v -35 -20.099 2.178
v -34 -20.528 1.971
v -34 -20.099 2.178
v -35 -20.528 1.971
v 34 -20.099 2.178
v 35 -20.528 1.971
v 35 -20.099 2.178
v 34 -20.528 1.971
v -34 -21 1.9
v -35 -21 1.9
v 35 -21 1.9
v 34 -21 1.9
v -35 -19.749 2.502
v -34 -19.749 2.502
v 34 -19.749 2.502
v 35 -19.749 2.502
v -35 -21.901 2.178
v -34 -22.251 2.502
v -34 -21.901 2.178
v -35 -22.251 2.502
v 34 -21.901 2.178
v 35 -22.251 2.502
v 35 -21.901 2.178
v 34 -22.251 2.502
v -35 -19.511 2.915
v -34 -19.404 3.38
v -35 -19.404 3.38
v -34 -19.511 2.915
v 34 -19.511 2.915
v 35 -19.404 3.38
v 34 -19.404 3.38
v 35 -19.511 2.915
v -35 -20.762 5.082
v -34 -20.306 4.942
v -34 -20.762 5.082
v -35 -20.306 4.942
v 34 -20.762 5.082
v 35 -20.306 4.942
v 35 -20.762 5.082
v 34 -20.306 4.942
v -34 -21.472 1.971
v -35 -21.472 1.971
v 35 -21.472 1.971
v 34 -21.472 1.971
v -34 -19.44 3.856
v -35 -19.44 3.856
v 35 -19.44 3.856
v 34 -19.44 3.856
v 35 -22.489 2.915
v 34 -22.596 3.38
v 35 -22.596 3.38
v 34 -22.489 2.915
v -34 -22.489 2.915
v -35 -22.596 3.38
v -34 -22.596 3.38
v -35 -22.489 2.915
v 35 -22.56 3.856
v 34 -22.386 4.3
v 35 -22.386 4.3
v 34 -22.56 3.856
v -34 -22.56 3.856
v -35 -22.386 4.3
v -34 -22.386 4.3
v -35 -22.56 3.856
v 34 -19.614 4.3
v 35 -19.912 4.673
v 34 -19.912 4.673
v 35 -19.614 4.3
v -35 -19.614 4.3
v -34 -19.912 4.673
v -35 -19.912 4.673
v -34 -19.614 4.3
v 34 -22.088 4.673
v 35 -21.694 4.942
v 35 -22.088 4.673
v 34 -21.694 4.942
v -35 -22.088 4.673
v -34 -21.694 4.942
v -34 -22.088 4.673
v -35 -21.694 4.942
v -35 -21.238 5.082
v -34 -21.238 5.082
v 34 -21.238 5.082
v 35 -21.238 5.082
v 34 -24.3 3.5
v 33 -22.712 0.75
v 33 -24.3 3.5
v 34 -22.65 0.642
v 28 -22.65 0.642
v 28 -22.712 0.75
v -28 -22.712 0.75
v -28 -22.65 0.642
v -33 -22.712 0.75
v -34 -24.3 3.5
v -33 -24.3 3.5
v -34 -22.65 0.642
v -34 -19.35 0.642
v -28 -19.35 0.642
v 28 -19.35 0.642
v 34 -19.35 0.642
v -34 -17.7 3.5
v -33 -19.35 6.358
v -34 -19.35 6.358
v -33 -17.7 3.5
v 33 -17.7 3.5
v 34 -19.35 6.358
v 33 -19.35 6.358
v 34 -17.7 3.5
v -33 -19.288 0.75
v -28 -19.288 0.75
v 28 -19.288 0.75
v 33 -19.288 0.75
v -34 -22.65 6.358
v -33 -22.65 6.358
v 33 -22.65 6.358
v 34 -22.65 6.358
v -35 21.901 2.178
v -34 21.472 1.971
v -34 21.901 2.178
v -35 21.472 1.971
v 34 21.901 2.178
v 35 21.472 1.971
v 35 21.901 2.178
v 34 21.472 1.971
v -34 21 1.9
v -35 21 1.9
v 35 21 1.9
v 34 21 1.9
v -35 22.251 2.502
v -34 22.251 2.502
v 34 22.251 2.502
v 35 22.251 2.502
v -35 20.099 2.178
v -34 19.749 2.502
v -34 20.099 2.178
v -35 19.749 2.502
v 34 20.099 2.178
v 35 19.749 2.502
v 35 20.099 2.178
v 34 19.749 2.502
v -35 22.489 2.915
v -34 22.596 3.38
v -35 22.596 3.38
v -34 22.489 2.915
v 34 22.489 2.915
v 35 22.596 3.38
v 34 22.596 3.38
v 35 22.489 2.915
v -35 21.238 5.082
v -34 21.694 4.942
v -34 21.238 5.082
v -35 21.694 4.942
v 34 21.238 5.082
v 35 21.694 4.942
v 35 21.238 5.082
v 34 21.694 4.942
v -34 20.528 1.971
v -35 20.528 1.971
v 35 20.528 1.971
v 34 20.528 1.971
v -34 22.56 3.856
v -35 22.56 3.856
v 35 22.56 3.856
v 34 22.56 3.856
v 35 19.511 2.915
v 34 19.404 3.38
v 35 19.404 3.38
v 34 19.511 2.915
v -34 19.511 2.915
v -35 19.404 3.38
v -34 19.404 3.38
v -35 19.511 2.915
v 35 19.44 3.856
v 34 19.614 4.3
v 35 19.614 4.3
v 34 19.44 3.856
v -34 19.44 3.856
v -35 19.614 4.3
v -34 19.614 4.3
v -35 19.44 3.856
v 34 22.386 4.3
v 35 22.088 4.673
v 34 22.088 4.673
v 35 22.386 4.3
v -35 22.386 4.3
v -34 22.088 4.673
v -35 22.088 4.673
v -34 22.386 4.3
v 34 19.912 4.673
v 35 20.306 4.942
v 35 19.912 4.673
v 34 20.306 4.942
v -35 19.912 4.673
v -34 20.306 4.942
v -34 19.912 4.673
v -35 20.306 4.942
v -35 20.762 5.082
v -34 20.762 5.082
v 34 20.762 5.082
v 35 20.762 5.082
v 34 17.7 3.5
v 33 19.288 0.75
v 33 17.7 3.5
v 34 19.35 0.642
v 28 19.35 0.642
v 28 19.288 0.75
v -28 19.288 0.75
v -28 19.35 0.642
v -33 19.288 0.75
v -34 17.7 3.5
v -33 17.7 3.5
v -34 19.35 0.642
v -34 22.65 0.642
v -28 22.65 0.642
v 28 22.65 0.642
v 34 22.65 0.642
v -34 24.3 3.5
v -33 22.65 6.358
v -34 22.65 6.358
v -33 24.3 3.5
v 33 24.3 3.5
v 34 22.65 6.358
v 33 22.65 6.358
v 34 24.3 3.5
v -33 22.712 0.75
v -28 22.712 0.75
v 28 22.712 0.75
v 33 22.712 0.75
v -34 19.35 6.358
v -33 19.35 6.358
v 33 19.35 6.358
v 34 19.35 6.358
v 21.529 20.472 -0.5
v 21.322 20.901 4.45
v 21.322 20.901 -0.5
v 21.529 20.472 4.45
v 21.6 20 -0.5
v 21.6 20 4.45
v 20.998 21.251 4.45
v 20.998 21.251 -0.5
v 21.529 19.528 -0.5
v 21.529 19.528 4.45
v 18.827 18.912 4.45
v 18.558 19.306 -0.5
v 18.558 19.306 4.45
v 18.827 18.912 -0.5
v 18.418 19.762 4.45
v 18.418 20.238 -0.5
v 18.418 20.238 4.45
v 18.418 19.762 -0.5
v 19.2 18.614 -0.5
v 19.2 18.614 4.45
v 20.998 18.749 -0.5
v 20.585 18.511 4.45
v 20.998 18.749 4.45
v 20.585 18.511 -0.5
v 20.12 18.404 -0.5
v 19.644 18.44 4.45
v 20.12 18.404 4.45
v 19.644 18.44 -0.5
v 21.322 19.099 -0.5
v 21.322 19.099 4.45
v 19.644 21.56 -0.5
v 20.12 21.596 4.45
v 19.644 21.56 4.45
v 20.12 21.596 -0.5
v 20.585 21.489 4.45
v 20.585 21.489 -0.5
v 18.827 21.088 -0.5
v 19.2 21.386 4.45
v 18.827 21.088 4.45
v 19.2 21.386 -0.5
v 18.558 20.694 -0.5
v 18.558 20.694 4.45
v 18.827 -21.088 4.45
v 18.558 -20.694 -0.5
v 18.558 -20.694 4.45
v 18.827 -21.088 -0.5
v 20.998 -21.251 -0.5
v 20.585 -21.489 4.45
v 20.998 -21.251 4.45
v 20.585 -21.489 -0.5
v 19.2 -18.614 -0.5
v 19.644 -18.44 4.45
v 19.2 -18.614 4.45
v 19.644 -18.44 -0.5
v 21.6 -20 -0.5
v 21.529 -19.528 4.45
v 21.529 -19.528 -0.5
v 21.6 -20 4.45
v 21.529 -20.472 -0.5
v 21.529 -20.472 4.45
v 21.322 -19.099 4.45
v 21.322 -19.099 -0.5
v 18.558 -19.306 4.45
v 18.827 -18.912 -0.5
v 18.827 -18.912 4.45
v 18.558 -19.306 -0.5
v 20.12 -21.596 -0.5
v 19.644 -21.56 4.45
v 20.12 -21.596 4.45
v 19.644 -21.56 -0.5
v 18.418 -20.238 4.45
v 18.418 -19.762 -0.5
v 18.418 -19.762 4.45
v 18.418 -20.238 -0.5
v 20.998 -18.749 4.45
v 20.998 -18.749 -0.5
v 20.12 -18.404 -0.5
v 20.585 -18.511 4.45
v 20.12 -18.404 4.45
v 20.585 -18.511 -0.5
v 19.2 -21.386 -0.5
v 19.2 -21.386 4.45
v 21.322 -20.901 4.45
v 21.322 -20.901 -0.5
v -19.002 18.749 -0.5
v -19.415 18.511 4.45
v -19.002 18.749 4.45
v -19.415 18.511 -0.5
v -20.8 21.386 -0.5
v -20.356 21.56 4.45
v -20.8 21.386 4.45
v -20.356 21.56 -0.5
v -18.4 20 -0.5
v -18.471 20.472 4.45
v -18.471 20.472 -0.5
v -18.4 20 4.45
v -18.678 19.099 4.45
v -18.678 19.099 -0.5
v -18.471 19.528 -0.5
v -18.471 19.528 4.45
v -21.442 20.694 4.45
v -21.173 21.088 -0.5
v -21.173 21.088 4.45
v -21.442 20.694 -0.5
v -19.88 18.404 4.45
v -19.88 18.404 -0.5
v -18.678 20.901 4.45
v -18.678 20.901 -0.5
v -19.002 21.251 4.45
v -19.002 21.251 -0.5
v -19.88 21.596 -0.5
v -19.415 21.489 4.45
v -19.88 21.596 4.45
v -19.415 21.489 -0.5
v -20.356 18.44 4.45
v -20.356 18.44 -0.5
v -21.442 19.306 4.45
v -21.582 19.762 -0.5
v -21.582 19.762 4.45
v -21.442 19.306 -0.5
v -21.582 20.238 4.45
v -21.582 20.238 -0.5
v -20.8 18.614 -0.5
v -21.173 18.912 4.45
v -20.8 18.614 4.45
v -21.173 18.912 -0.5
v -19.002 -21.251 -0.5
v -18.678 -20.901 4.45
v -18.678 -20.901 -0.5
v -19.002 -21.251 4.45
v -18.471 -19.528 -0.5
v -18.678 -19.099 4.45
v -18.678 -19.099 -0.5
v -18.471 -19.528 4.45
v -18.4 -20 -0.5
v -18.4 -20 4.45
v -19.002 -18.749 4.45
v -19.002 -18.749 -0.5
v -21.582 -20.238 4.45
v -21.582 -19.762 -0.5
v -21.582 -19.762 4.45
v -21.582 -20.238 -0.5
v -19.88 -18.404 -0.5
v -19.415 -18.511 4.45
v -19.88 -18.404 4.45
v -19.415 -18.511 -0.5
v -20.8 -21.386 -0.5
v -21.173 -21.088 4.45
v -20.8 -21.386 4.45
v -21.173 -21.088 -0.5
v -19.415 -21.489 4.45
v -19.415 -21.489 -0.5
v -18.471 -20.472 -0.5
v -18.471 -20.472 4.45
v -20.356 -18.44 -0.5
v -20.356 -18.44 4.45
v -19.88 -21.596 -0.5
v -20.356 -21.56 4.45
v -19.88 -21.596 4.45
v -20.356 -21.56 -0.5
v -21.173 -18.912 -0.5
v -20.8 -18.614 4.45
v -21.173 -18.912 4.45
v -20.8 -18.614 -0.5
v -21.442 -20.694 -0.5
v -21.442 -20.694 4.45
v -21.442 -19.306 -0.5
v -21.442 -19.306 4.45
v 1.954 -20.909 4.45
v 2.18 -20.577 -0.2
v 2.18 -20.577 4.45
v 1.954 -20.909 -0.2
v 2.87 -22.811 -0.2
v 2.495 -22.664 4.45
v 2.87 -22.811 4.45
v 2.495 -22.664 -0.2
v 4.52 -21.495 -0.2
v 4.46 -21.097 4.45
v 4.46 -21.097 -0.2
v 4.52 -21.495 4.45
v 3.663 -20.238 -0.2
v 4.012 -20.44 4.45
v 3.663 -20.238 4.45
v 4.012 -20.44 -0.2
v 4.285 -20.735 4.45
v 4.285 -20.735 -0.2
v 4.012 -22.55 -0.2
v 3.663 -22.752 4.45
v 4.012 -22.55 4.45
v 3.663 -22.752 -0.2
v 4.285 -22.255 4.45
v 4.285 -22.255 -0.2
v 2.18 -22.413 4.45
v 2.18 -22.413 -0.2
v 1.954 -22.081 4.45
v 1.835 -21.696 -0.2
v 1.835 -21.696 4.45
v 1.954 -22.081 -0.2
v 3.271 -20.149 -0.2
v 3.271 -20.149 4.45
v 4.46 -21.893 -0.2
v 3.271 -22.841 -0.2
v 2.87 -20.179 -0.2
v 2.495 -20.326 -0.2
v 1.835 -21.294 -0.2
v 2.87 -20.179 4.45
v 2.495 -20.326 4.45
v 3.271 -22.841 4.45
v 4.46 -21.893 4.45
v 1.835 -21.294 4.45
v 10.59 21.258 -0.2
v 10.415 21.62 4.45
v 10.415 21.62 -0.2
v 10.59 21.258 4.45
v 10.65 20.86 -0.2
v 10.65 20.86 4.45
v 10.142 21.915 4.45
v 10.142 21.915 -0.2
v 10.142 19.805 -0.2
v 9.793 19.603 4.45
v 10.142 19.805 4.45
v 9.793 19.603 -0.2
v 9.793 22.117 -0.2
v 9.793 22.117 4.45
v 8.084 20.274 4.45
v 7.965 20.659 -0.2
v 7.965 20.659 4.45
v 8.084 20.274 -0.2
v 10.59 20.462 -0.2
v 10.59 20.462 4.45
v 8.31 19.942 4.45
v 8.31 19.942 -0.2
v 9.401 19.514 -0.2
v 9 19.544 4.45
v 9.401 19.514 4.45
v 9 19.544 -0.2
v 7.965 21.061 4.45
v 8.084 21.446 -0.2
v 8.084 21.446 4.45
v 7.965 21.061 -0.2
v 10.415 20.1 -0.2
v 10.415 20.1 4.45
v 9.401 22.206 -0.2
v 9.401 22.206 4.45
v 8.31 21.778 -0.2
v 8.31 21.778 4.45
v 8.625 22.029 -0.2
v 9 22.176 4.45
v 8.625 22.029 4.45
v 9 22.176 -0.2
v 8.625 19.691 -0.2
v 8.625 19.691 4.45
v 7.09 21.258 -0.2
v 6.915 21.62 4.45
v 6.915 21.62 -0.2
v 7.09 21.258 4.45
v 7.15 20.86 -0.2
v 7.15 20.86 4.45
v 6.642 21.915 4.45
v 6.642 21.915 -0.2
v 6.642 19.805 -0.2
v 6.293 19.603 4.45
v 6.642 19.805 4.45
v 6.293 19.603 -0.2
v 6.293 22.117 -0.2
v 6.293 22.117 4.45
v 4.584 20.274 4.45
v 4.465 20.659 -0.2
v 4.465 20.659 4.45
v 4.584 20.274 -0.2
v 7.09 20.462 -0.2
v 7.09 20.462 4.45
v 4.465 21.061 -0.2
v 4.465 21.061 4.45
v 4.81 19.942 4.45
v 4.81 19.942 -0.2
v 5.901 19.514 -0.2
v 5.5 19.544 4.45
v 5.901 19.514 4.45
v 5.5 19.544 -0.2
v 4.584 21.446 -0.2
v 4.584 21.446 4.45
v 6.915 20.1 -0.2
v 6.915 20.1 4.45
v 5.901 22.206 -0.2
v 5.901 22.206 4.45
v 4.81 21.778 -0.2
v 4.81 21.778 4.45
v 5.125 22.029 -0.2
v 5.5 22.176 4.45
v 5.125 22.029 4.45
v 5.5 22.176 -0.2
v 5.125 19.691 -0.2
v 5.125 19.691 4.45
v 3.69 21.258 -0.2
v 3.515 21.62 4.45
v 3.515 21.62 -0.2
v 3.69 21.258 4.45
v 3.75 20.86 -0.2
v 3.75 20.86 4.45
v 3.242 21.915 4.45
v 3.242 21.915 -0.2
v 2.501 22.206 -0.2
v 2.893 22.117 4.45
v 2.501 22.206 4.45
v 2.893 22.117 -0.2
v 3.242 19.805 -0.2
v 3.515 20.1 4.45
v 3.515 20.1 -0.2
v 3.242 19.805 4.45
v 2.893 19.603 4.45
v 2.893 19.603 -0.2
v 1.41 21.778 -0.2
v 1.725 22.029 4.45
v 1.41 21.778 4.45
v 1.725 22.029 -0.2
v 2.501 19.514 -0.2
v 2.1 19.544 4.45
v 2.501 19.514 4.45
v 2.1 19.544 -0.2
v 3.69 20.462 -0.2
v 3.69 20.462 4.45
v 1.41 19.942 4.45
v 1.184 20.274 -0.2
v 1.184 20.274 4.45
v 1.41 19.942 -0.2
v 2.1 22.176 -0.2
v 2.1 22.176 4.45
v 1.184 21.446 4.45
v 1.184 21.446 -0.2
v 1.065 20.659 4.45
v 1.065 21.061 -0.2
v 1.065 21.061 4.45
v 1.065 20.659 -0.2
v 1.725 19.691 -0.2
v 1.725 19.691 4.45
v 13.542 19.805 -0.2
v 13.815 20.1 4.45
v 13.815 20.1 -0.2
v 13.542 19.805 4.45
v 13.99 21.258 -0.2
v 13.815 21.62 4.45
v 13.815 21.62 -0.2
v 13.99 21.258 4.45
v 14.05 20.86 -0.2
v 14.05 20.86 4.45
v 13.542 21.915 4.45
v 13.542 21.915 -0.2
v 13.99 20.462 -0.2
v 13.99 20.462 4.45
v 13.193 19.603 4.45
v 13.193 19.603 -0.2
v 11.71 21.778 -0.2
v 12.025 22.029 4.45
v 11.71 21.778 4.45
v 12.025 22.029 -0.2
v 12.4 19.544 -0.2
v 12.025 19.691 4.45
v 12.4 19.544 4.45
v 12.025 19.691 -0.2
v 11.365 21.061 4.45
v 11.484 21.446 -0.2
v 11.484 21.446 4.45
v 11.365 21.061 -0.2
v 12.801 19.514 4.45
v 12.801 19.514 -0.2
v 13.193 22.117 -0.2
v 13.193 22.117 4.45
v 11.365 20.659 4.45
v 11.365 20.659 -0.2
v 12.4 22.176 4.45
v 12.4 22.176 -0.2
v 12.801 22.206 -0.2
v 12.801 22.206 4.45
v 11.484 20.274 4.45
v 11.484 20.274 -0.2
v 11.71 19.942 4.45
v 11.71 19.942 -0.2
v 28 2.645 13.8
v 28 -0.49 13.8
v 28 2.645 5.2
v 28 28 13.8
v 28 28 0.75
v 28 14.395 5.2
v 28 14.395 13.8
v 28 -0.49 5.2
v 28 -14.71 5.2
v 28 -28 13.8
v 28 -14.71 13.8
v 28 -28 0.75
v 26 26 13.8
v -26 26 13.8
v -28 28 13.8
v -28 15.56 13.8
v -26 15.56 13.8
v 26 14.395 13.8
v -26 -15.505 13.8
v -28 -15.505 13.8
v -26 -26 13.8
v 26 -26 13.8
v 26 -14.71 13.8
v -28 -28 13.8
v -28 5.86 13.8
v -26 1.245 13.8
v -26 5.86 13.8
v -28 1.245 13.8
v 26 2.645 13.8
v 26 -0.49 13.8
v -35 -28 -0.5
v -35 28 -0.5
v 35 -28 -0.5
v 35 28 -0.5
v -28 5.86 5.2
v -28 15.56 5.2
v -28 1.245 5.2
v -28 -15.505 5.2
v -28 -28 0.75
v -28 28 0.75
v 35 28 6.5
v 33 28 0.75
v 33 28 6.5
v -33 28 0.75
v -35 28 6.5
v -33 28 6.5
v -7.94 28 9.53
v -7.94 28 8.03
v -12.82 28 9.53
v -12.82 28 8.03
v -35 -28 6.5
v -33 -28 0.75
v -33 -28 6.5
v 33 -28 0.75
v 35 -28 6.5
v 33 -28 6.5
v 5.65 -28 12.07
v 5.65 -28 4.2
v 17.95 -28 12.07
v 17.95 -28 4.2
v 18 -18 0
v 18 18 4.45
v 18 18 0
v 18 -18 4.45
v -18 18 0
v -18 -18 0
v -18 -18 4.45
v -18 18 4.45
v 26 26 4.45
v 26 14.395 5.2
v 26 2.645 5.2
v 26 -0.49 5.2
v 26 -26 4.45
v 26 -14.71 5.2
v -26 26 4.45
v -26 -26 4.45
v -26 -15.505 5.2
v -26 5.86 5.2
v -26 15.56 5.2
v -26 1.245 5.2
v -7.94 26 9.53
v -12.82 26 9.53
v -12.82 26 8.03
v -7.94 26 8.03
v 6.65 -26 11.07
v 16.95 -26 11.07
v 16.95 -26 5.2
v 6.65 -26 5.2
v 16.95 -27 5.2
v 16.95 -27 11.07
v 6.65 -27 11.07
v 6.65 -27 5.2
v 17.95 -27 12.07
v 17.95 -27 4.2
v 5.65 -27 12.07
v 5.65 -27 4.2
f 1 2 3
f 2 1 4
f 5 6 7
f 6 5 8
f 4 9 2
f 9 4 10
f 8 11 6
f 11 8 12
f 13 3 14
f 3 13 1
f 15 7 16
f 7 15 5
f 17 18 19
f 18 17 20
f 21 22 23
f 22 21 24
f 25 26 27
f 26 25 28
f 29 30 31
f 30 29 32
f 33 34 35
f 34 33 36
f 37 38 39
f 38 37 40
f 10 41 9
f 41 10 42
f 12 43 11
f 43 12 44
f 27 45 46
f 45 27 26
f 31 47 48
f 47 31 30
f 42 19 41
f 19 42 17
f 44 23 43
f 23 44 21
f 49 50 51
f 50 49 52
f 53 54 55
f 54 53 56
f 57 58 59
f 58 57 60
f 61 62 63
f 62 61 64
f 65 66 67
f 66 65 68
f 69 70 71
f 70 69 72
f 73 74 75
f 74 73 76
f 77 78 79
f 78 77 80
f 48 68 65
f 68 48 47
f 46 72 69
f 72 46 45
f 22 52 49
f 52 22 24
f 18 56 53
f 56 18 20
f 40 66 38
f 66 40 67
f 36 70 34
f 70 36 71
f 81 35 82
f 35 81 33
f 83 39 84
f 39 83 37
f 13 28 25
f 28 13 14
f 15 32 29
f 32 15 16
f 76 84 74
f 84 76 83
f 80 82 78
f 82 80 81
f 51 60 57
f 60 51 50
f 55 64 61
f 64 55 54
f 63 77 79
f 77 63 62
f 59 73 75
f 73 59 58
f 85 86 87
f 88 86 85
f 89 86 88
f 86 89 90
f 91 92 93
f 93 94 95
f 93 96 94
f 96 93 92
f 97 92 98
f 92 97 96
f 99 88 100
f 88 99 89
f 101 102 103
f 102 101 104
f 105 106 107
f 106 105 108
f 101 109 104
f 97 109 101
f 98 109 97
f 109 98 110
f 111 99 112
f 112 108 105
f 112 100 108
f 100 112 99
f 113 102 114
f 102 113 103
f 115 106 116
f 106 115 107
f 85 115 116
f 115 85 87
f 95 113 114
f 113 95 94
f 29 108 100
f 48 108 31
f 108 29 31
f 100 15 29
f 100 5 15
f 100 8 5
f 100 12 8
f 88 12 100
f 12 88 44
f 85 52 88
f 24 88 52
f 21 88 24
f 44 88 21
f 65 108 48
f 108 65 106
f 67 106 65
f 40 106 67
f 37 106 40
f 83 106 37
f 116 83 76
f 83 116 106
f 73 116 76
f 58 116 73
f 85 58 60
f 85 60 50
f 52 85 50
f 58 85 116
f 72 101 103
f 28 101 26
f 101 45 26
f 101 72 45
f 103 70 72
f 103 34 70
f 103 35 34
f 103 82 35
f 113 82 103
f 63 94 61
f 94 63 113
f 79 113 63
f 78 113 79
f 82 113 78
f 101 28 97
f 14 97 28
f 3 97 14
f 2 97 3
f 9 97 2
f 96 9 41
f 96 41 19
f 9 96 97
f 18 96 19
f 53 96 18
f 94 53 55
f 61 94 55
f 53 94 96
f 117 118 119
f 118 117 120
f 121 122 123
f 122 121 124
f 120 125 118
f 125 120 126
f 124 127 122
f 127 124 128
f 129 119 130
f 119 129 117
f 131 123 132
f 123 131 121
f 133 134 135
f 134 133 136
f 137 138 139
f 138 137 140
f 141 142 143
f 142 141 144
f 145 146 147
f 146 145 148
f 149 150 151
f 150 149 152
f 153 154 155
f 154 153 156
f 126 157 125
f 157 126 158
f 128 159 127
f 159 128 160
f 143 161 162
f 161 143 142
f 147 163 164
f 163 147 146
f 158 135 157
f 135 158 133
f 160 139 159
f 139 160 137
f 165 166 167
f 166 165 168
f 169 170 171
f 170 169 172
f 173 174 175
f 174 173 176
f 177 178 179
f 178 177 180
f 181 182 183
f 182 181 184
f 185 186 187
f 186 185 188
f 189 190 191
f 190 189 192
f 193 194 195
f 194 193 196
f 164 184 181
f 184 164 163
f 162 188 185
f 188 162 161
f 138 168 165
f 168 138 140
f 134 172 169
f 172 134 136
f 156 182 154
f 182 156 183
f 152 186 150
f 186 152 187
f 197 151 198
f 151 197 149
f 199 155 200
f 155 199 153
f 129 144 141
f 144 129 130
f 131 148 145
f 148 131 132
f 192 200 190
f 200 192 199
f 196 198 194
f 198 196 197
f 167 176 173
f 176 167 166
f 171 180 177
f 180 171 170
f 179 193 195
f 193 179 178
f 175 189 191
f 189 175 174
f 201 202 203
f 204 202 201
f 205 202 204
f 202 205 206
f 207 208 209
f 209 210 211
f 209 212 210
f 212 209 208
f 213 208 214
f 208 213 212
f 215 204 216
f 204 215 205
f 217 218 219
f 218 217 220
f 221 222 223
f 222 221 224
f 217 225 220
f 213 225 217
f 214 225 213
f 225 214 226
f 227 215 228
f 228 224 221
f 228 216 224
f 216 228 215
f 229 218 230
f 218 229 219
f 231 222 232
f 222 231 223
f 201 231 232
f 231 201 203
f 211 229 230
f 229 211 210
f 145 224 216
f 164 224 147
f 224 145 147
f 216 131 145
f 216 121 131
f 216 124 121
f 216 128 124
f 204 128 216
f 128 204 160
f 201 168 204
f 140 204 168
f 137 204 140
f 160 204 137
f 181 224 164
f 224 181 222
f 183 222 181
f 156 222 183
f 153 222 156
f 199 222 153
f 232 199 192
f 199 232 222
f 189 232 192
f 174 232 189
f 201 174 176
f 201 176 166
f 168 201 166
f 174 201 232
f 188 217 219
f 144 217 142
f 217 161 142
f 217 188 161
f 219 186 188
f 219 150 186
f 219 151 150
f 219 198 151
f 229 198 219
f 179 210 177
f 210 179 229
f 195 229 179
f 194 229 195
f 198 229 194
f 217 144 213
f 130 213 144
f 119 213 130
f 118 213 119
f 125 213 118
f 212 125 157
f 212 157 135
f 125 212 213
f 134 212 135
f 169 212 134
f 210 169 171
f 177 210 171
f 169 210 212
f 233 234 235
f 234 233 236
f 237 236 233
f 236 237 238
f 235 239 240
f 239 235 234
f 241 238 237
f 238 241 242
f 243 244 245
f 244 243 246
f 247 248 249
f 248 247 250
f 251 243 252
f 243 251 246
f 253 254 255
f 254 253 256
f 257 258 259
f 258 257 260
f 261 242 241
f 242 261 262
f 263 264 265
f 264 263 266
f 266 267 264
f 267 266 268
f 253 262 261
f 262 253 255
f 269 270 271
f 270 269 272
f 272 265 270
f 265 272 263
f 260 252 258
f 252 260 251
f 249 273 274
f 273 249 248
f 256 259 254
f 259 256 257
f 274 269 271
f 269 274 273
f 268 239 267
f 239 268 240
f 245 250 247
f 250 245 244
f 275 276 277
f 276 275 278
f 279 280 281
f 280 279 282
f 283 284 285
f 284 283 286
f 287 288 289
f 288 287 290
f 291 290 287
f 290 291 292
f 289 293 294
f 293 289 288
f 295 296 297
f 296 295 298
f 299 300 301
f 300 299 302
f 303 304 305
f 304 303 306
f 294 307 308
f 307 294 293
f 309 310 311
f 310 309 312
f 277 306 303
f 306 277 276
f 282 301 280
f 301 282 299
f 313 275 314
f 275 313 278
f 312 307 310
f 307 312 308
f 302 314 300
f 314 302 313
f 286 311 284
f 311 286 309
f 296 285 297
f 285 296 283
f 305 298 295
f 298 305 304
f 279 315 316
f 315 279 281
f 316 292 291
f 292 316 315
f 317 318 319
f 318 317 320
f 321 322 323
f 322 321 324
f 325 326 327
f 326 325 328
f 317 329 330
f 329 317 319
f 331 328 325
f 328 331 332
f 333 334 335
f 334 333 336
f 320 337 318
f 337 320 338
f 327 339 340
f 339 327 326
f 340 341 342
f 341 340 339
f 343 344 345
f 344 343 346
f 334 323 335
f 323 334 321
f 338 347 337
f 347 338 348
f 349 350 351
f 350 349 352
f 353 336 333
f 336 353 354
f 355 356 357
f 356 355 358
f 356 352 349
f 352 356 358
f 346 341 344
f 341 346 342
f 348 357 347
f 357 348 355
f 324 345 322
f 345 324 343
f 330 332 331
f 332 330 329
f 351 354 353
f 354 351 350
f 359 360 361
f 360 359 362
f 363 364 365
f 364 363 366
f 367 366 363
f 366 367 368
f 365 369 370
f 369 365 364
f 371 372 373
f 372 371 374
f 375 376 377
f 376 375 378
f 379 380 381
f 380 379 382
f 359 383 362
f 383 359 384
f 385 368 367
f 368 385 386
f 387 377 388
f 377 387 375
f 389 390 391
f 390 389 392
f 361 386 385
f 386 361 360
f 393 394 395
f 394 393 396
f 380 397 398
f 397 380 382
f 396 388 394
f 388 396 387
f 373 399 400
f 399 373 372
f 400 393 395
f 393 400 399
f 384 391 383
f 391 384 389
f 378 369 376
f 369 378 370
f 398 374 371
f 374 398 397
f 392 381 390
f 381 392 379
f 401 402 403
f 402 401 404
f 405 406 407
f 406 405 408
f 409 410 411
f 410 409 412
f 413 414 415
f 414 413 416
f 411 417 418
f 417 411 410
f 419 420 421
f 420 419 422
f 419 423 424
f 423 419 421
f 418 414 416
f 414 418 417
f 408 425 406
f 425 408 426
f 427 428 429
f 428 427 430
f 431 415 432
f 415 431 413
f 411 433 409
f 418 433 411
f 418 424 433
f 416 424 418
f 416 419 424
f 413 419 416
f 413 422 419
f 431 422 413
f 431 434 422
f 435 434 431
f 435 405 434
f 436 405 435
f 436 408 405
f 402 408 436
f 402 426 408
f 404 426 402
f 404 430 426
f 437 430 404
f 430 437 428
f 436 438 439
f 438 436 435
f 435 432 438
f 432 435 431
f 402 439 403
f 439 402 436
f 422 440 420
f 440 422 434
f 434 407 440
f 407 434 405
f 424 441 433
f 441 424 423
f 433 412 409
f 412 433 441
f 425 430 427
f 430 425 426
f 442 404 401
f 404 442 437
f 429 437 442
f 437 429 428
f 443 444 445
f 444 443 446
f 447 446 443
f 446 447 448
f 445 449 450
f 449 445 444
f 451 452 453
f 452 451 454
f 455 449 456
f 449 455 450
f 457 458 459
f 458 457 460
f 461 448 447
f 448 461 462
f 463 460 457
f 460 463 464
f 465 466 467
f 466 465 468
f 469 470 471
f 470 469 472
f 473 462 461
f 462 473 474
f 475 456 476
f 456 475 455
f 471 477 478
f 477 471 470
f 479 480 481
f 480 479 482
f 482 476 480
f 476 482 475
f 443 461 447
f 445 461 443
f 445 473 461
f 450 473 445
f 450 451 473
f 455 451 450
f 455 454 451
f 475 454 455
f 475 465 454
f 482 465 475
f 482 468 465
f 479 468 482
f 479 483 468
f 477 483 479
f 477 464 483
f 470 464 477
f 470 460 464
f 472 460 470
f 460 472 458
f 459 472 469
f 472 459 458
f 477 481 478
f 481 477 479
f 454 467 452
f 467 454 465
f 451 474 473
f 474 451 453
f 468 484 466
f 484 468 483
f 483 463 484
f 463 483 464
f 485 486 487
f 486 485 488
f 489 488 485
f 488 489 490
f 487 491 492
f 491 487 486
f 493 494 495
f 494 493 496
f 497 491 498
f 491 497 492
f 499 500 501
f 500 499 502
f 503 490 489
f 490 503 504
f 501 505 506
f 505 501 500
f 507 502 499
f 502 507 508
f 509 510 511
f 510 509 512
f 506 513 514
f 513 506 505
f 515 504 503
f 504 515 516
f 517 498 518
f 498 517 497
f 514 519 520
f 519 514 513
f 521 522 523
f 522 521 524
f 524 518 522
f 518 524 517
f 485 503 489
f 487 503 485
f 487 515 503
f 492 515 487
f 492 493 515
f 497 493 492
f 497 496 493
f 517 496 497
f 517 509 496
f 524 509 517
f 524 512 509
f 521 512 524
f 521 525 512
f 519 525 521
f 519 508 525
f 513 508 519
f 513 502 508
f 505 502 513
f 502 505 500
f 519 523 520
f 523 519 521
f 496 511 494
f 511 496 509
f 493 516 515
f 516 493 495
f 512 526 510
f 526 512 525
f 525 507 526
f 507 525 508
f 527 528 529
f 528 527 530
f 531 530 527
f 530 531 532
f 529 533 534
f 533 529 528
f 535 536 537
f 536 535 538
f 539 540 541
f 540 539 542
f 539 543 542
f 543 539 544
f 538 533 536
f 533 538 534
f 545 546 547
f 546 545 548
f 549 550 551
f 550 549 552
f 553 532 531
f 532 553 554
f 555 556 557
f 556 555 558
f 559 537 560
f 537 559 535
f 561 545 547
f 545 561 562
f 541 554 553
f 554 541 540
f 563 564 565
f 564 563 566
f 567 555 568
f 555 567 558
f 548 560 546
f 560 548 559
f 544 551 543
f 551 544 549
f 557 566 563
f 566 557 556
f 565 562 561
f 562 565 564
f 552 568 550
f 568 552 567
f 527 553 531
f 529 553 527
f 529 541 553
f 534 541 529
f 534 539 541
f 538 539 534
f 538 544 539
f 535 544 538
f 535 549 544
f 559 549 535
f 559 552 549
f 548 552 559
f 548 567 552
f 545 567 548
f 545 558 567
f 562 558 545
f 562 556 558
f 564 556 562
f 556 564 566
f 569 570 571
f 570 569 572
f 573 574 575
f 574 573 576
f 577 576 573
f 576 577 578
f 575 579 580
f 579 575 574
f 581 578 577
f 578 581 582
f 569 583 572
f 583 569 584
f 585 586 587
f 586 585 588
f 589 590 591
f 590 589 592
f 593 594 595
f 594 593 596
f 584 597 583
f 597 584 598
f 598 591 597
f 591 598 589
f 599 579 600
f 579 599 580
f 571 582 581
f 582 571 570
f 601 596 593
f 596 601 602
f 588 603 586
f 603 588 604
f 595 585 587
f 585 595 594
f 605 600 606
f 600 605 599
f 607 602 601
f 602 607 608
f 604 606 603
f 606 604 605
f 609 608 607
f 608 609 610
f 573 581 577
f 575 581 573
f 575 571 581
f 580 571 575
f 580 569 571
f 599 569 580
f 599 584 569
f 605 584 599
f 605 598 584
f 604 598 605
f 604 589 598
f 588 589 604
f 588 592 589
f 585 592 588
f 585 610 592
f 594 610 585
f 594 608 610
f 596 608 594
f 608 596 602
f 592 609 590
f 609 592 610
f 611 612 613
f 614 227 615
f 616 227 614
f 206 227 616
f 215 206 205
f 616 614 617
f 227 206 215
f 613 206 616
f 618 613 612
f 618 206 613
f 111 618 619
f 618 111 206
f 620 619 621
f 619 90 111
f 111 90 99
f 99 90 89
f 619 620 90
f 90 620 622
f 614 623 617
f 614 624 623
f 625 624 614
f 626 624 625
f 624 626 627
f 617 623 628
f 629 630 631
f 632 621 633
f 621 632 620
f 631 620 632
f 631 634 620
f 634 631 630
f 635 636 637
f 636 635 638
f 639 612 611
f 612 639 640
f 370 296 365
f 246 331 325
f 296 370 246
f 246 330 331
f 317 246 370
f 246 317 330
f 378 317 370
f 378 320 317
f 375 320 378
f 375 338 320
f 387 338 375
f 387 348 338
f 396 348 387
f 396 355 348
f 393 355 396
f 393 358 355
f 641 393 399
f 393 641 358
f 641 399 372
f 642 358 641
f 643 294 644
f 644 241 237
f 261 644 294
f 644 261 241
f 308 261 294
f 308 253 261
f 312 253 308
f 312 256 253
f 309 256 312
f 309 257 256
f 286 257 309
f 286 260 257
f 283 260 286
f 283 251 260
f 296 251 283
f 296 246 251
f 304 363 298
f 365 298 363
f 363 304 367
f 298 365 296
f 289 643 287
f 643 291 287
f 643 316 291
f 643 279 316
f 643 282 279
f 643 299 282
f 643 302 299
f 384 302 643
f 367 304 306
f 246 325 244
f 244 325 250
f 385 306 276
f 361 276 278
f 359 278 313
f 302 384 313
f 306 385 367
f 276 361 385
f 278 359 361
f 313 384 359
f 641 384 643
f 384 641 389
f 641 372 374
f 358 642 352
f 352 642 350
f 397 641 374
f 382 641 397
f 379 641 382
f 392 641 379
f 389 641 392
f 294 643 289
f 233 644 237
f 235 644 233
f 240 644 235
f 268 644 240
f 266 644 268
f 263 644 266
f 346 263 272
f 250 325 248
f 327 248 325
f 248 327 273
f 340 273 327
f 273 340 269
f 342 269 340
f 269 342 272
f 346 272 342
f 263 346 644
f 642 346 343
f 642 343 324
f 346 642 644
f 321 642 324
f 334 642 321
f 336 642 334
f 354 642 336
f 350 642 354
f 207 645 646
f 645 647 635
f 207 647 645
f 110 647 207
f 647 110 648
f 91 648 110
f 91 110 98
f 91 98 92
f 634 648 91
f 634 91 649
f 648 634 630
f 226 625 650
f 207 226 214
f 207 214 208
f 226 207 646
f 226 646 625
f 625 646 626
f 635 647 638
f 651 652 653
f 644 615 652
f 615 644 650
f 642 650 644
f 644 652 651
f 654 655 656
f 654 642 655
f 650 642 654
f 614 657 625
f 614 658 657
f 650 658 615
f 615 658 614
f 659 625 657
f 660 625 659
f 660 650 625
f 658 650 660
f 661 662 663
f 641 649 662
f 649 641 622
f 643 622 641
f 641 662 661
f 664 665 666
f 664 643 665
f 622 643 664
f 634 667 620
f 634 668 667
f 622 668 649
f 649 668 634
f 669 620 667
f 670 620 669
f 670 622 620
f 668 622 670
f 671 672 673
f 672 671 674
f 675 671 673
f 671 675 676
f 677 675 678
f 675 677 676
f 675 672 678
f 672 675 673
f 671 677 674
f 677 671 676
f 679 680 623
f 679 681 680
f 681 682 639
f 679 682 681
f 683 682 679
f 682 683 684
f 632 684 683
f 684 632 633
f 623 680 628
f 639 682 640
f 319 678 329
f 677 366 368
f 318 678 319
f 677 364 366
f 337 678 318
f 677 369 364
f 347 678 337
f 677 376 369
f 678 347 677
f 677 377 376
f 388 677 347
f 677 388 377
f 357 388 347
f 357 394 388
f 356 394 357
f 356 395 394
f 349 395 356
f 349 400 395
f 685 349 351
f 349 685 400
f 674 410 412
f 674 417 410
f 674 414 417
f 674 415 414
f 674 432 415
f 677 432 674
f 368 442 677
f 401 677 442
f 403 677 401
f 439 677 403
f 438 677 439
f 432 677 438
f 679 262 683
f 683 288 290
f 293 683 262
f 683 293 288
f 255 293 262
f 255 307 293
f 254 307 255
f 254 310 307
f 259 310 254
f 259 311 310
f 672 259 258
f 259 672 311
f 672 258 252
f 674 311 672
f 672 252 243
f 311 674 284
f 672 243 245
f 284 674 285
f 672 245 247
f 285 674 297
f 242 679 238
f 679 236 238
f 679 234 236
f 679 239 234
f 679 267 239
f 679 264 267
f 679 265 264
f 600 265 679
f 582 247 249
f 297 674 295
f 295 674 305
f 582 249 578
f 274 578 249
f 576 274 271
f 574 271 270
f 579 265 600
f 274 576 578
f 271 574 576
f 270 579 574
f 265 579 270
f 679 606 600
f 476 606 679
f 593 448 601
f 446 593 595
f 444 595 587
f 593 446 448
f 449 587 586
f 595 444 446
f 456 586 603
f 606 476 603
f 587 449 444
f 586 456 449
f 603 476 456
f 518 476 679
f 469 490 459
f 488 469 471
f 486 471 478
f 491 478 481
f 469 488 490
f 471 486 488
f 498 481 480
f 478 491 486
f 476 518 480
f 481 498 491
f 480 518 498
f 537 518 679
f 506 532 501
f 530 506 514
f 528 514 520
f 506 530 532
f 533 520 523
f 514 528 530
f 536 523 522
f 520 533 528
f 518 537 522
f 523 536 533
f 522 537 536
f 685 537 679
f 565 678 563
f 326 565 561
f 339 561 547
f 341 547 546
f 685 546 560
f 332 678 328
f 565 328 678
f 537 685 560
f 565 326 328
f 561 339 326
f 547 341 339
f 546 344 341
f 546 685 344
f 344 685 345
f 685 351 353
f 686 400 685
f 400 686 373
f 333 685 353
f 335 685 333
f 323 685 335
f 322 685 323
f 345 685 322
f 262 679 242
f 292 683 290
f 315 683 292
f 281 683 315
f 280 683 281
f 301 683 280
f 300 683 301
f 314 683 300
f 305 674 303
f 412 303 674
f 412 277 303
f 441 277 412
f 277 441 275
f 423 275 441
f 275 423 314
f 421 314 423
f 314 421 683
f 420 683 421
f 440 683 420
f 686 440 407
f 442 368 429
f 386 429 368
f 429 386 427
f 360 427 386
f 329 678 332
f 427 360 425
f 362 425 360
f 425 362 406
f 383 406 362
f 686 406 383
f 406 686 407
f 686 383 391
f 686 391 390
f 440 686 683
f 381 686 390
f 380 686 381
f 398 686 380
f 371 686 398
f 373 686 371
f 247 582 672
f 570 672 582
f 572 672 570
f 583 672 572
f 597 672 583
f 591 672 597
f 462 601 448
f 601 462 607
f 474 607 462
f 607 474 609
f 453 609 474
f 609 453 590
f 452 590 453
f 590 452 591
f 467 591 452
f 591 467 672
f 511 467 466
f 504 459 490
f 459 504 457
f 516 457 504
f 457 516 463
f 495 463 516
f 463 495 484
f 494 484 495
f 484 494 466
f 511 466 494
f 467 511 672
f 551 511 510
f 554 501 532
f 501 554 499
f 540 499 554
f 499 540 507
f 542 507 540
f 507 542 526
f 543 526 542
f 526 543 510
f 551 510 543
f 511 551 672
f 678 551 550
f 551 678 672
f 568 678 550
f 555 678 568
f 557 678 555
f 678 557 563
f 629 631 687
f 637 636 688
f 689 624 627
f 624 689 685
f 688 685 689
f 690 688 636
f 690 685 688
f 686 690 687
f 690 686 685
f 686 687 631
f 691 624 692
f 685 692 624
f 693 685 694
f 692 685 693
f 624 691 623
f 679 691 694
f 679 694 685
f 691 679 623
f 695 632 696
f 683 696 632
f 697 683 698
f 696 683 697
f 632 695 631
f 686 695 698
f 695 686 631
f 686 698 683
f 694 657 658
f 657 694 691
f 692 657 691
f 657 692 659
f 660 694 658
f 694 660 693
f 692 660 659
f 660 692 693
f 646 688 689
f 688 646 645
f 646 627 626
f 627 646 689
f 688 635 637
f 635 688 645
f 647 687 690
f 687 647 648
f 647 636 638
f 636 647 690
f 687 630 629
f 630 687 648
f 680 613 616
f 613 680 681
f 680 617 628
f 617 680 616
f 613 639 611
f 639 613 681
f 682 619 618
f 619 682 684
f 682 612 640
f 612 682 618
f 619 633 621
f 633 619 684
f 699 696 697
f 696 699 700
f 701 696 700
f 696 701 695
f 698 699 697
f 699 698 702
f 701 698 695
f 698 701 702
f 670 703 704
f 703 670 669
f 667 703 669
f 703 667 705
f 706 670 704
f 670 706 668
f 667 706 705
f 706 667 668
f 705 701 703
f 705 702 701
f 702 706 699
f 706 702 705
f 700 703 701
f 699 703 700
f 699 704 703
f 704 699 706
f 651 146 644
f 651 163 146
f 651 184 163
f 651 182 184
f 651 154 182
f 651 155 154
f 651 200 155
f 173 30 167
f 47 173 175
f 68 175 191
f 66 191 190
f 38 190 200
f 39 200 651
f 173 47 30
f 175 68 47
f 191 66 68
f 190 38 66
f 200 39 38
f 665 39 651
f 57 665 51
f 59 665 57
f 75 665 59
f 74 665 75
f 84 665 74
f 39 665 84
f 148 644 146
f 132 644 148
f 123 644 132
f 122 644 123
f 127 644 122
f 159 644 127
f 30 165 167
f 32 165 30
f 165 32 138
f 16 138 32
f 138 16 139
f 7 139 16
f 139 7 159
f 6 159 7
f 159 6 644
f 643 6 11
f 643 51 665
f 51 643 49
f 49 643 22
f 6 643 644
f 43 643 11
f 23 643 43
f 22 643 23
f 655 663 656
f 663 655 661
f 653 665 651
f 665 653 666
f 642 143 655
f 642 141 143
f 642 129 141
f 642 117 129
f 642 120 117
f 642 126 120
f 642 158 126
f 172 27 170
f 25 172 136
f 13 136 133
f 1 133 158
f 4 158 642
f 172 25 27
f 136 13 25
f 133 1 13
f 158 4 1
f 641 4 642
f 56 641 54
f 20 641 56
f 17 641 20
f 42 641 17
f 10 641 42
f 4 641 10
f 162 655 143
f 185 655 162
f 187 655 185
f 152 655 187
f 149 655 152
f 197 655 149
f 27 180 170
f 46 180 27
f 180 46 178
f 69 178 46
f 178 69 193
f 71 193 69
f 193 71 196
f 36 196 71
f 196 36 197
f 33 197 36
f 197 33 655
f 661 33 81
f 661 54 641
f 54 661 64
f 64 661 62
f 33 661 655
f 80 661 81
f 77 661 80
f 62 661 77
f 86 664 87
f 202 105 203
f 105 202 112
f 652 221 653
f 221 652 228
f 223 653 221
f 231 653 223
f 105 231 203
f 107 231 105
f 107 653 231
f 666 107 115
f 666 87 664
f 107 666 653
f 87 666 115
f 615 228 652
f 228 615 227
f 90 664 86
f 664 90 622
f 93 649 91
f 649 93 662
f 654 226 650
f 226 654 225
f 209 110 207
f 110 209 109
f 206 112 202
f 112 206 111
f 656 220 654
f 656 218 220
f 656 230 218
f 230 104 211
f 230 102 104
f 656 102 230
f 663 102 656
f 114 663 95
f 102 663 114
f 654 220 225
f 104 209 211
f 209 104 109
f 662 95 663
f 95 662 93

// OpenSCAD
// file: bolt_parameters.scad
/// deprecated parameters - should be removed after code upgrade to latest libraries
///

// screw length step - minimum difference in length between two types of screws
basic_screw_length = 5;

//Screw diameter and nut for M6 [mm]
M6_screw_diameter=6.5;
M6_head_diameter = 10+0.5;
M6_head_height = 6;
M6_nut_height = 4.9;
M6_nut_diameter = 11.8;
M6_nut_pocket = 10.4;

//Screw diameter and nut for M5 [mm]
M5_screw_diameter=5.5;
M5_head_height = 5;
M5_head_diameter = 13+0.5;
M5_nut_height = 4.5;
M5_nut_diameter = 9.4;
M5_nut_pocket = 8.4;

//Screw diameter and nut for M4 [mm]
M4_screw_diameter=4.5;
M4_screw_head_height = 4;
M4_nut_height = 3.2;
M4_nut_diameter = 8.4;
M4_nut_pocket = 7.5;

//Screw diameter and nut for M3 [mm]
M3_screw_diameter = 3.2;
M3_nut_height = 2.7;
M3_nut_diameter = 6.6;
M3_screw_head_height = 3;
M3_nut_pocket = 5.6;


//Screw diameter and nut for M2,5 [mm]
M2_5_screw_diameter = 2.7;
M2_5_nut_height = 2.3;
M2_5_nut_diameter = 6;
M2_5_nut_pocket = 5.1;

//Screw diameter and nut for M2 [mm]
M2_screw_diameter = 2.0;
M2_nut_height = 1.8;
M2_nut_diameter = 4.8;
M2_nut_pocket = 3.95;
// main file
include <bolt_parameters.scad>

/*
vyska = 20;

difference(){
sphere(r = 10);
#cube(10, center = true);
translate([0, 0, vyska/2]) cube([5, 5, vyska], center = true);
}

*/


connector_i2c = true;
connector_autopilot = true;
switch = true;
Payload = true;
konektor_usb = true;

D3 = true;
D4 = true;
D5 = true;
D6 = true;
D7 = true;

wall = 2;

antenna_size = 35+1;
antenna_thickness = 4.5;

antenna_solid_layer = 0.5;
led_solid_layer = 0.3;

pcb_size = 51+1;
pcb_thickness = 7.3;

pacicky_cube = 70;

module gps_krabicka(){

	difference(){
		translate([0, 0, (antenna_thickness+pcb_thickness+wall-antenna_solid_layer)/2])
			cube([pcb_size+2*wall, pcb_size+2*wall, antenna_thickness+pcb_thickness+antenna_solid_layer+wall], center = true);


		for (x = [1, -1], y=[1, -1])
			translate([20*x, 20*y, (antenna_thickness+pcb_thickness+antenna_solid_layer+wall+1)/2 - antenna_solid_layer])
				cylinder(d = M3_screw_diameter, h=antenna_thickness+pcb_thickness+antenna_solid_layer+wall+1+0.1, center = true, $fn = 21);


		translate([0, 0, antenna_thickness/2])
			cube([antenna_size, antenna_size, antenna_thickness], center = true);

		translate([0, 0, (pcb_thickness+wall+1)/2+antenna_thickness])
			cube([pcb_size, pcb_size, pcb_thickness+wall+1+0.1], center = true);

		//pípák
		translate([-9.5-0.88, (pcb_size+wall)/2, 4.33+antenna_thickness+1.5/2-0.8])
			cube([4+0.88, wall+1, 1.5], center = true);

		//otvor konektoru I2C
		if(connector_i2c)
		translate([-(pcb_size+wall)/2, 11.3-0.59, antenna_thickness + 0.7])
			translate([0, 0, 10])
				cube ([wall+1, 8.7+1, 20], center = true);

		//Konektor autopilot
		if(connector_autopilot)
		translate([-(pcb_size+wall)/2, -6.86-0.27, antenna_thickness + 0.7])
			translate([0, 0, 10])	
				cube([wall+1, 15.75 + 1, 20], center = true);

		//Tlačítko switch 
		if(switch)
		translate([(pcb_size+wall)/2, 8.1+0.42, antenna_thickness + 0.7])
			translate([0, 0, 10])
				cube([wall+1, 10.75+1, 20], center = true);

		//Payload
		if(Payload)
		translate([(pcb_size+wall)/2, -8.1+0.5, antenna_thickness + 0.7])
			translate([0, 0, 10])
				cube([wall+1, 13.22+1, 20], center = true);

		//konektor_usb
		if(konektor_usb)
		translate([10+1+0.8, -(pcb_size+wall)/2, antenna_thickness + 0.7])
			translate([0, 0, 5.87/2])
				cube([9.3+1, wall+1, 5.87], center = true);

		translate([10+1+0.8, -(pcb_size+wall)/2-(wall+1)/2, antenna_thickness + 0.7-1])
			translate([0, 0, 7.87/2])
				cube([9.3+1+2, wall+1, 7.87], center = true);
		//diody :DDDDDDDDD
		translate([0, 0, -antenna_solid_layer]){
			if(D3)
				translate([3.17, -21.495, led_solid_layer])
					cylinder(d = 2.7, h=20, $fn = 21);

			if(D4)
				translate([9.3, 20.86, led_solid_layer])
					cylinder(d = 2.7, h=20, $fn = 21);

			
			if(D5)
				translate([5.8, 20.86, led_solid_layer])
					cylinder(d = 2.7, h=20, $fn = 21);


			if(D6)
				translate([2.4, 20.86, led_solid_layer])
					cylinder(d = 2.7, h=20, $fn = 21);

			if(D7)
				translate([12.7, 20.86, led_solid_layer])
					cylinder(d = 2.7, h=20, $fn = 21);
		
		}
	}
}


module gps_pacicky(){
	difference(){
		translate([0, 0, -antenna_solid_layer+(wall+5)/2])	
			cube([pacicky_cube, pcb_size+2*wall, wall+5], center = true);

		translate([0, 0, -antenna_solid_layer+(wall+5)/2+wall*1.5])	
			cube([pacicky_cube-4, pcb_size+2*wall, wall+8.5], center = true);

			cube([pcb_size+2*wall, pcb_size+2*wall, +100], center = true);
		
			for(x = [-1, 1])
			translate([0, x*((pcb_size)/2-5), (wall+5)/2])
				rotate([0, 90, 0]){
					cylinder(d = M3_screw_diameter, h = 77, $fn = 21, center = true);
					rotate([0,0,30]) cylinder(d = M3_nut_diameter, h = 70-2, $fn = 6, center = true);
				}
	}
}



module gps_vicko(){
	difference(){
		translate([0, 0, antenna_thickness+pcb_thickness+wall/2+wall])
			cube([pcb_size+2*wall, pcb_size+2*wall, wall], center = true);
		for (x = [1, -1], y=[1, -1])
			translate([20*x, 20*y, (antenna_thickness+pcb_thickness+antenna_solid_layer+wall+1)/2 - antenna_solid_layer])
				cylinder(d = M3_screw_diameter, h=20, center = true, $fn = 21);


	}
}




gps_pacicky();
gps_krabicka();
//gps_vicko();
